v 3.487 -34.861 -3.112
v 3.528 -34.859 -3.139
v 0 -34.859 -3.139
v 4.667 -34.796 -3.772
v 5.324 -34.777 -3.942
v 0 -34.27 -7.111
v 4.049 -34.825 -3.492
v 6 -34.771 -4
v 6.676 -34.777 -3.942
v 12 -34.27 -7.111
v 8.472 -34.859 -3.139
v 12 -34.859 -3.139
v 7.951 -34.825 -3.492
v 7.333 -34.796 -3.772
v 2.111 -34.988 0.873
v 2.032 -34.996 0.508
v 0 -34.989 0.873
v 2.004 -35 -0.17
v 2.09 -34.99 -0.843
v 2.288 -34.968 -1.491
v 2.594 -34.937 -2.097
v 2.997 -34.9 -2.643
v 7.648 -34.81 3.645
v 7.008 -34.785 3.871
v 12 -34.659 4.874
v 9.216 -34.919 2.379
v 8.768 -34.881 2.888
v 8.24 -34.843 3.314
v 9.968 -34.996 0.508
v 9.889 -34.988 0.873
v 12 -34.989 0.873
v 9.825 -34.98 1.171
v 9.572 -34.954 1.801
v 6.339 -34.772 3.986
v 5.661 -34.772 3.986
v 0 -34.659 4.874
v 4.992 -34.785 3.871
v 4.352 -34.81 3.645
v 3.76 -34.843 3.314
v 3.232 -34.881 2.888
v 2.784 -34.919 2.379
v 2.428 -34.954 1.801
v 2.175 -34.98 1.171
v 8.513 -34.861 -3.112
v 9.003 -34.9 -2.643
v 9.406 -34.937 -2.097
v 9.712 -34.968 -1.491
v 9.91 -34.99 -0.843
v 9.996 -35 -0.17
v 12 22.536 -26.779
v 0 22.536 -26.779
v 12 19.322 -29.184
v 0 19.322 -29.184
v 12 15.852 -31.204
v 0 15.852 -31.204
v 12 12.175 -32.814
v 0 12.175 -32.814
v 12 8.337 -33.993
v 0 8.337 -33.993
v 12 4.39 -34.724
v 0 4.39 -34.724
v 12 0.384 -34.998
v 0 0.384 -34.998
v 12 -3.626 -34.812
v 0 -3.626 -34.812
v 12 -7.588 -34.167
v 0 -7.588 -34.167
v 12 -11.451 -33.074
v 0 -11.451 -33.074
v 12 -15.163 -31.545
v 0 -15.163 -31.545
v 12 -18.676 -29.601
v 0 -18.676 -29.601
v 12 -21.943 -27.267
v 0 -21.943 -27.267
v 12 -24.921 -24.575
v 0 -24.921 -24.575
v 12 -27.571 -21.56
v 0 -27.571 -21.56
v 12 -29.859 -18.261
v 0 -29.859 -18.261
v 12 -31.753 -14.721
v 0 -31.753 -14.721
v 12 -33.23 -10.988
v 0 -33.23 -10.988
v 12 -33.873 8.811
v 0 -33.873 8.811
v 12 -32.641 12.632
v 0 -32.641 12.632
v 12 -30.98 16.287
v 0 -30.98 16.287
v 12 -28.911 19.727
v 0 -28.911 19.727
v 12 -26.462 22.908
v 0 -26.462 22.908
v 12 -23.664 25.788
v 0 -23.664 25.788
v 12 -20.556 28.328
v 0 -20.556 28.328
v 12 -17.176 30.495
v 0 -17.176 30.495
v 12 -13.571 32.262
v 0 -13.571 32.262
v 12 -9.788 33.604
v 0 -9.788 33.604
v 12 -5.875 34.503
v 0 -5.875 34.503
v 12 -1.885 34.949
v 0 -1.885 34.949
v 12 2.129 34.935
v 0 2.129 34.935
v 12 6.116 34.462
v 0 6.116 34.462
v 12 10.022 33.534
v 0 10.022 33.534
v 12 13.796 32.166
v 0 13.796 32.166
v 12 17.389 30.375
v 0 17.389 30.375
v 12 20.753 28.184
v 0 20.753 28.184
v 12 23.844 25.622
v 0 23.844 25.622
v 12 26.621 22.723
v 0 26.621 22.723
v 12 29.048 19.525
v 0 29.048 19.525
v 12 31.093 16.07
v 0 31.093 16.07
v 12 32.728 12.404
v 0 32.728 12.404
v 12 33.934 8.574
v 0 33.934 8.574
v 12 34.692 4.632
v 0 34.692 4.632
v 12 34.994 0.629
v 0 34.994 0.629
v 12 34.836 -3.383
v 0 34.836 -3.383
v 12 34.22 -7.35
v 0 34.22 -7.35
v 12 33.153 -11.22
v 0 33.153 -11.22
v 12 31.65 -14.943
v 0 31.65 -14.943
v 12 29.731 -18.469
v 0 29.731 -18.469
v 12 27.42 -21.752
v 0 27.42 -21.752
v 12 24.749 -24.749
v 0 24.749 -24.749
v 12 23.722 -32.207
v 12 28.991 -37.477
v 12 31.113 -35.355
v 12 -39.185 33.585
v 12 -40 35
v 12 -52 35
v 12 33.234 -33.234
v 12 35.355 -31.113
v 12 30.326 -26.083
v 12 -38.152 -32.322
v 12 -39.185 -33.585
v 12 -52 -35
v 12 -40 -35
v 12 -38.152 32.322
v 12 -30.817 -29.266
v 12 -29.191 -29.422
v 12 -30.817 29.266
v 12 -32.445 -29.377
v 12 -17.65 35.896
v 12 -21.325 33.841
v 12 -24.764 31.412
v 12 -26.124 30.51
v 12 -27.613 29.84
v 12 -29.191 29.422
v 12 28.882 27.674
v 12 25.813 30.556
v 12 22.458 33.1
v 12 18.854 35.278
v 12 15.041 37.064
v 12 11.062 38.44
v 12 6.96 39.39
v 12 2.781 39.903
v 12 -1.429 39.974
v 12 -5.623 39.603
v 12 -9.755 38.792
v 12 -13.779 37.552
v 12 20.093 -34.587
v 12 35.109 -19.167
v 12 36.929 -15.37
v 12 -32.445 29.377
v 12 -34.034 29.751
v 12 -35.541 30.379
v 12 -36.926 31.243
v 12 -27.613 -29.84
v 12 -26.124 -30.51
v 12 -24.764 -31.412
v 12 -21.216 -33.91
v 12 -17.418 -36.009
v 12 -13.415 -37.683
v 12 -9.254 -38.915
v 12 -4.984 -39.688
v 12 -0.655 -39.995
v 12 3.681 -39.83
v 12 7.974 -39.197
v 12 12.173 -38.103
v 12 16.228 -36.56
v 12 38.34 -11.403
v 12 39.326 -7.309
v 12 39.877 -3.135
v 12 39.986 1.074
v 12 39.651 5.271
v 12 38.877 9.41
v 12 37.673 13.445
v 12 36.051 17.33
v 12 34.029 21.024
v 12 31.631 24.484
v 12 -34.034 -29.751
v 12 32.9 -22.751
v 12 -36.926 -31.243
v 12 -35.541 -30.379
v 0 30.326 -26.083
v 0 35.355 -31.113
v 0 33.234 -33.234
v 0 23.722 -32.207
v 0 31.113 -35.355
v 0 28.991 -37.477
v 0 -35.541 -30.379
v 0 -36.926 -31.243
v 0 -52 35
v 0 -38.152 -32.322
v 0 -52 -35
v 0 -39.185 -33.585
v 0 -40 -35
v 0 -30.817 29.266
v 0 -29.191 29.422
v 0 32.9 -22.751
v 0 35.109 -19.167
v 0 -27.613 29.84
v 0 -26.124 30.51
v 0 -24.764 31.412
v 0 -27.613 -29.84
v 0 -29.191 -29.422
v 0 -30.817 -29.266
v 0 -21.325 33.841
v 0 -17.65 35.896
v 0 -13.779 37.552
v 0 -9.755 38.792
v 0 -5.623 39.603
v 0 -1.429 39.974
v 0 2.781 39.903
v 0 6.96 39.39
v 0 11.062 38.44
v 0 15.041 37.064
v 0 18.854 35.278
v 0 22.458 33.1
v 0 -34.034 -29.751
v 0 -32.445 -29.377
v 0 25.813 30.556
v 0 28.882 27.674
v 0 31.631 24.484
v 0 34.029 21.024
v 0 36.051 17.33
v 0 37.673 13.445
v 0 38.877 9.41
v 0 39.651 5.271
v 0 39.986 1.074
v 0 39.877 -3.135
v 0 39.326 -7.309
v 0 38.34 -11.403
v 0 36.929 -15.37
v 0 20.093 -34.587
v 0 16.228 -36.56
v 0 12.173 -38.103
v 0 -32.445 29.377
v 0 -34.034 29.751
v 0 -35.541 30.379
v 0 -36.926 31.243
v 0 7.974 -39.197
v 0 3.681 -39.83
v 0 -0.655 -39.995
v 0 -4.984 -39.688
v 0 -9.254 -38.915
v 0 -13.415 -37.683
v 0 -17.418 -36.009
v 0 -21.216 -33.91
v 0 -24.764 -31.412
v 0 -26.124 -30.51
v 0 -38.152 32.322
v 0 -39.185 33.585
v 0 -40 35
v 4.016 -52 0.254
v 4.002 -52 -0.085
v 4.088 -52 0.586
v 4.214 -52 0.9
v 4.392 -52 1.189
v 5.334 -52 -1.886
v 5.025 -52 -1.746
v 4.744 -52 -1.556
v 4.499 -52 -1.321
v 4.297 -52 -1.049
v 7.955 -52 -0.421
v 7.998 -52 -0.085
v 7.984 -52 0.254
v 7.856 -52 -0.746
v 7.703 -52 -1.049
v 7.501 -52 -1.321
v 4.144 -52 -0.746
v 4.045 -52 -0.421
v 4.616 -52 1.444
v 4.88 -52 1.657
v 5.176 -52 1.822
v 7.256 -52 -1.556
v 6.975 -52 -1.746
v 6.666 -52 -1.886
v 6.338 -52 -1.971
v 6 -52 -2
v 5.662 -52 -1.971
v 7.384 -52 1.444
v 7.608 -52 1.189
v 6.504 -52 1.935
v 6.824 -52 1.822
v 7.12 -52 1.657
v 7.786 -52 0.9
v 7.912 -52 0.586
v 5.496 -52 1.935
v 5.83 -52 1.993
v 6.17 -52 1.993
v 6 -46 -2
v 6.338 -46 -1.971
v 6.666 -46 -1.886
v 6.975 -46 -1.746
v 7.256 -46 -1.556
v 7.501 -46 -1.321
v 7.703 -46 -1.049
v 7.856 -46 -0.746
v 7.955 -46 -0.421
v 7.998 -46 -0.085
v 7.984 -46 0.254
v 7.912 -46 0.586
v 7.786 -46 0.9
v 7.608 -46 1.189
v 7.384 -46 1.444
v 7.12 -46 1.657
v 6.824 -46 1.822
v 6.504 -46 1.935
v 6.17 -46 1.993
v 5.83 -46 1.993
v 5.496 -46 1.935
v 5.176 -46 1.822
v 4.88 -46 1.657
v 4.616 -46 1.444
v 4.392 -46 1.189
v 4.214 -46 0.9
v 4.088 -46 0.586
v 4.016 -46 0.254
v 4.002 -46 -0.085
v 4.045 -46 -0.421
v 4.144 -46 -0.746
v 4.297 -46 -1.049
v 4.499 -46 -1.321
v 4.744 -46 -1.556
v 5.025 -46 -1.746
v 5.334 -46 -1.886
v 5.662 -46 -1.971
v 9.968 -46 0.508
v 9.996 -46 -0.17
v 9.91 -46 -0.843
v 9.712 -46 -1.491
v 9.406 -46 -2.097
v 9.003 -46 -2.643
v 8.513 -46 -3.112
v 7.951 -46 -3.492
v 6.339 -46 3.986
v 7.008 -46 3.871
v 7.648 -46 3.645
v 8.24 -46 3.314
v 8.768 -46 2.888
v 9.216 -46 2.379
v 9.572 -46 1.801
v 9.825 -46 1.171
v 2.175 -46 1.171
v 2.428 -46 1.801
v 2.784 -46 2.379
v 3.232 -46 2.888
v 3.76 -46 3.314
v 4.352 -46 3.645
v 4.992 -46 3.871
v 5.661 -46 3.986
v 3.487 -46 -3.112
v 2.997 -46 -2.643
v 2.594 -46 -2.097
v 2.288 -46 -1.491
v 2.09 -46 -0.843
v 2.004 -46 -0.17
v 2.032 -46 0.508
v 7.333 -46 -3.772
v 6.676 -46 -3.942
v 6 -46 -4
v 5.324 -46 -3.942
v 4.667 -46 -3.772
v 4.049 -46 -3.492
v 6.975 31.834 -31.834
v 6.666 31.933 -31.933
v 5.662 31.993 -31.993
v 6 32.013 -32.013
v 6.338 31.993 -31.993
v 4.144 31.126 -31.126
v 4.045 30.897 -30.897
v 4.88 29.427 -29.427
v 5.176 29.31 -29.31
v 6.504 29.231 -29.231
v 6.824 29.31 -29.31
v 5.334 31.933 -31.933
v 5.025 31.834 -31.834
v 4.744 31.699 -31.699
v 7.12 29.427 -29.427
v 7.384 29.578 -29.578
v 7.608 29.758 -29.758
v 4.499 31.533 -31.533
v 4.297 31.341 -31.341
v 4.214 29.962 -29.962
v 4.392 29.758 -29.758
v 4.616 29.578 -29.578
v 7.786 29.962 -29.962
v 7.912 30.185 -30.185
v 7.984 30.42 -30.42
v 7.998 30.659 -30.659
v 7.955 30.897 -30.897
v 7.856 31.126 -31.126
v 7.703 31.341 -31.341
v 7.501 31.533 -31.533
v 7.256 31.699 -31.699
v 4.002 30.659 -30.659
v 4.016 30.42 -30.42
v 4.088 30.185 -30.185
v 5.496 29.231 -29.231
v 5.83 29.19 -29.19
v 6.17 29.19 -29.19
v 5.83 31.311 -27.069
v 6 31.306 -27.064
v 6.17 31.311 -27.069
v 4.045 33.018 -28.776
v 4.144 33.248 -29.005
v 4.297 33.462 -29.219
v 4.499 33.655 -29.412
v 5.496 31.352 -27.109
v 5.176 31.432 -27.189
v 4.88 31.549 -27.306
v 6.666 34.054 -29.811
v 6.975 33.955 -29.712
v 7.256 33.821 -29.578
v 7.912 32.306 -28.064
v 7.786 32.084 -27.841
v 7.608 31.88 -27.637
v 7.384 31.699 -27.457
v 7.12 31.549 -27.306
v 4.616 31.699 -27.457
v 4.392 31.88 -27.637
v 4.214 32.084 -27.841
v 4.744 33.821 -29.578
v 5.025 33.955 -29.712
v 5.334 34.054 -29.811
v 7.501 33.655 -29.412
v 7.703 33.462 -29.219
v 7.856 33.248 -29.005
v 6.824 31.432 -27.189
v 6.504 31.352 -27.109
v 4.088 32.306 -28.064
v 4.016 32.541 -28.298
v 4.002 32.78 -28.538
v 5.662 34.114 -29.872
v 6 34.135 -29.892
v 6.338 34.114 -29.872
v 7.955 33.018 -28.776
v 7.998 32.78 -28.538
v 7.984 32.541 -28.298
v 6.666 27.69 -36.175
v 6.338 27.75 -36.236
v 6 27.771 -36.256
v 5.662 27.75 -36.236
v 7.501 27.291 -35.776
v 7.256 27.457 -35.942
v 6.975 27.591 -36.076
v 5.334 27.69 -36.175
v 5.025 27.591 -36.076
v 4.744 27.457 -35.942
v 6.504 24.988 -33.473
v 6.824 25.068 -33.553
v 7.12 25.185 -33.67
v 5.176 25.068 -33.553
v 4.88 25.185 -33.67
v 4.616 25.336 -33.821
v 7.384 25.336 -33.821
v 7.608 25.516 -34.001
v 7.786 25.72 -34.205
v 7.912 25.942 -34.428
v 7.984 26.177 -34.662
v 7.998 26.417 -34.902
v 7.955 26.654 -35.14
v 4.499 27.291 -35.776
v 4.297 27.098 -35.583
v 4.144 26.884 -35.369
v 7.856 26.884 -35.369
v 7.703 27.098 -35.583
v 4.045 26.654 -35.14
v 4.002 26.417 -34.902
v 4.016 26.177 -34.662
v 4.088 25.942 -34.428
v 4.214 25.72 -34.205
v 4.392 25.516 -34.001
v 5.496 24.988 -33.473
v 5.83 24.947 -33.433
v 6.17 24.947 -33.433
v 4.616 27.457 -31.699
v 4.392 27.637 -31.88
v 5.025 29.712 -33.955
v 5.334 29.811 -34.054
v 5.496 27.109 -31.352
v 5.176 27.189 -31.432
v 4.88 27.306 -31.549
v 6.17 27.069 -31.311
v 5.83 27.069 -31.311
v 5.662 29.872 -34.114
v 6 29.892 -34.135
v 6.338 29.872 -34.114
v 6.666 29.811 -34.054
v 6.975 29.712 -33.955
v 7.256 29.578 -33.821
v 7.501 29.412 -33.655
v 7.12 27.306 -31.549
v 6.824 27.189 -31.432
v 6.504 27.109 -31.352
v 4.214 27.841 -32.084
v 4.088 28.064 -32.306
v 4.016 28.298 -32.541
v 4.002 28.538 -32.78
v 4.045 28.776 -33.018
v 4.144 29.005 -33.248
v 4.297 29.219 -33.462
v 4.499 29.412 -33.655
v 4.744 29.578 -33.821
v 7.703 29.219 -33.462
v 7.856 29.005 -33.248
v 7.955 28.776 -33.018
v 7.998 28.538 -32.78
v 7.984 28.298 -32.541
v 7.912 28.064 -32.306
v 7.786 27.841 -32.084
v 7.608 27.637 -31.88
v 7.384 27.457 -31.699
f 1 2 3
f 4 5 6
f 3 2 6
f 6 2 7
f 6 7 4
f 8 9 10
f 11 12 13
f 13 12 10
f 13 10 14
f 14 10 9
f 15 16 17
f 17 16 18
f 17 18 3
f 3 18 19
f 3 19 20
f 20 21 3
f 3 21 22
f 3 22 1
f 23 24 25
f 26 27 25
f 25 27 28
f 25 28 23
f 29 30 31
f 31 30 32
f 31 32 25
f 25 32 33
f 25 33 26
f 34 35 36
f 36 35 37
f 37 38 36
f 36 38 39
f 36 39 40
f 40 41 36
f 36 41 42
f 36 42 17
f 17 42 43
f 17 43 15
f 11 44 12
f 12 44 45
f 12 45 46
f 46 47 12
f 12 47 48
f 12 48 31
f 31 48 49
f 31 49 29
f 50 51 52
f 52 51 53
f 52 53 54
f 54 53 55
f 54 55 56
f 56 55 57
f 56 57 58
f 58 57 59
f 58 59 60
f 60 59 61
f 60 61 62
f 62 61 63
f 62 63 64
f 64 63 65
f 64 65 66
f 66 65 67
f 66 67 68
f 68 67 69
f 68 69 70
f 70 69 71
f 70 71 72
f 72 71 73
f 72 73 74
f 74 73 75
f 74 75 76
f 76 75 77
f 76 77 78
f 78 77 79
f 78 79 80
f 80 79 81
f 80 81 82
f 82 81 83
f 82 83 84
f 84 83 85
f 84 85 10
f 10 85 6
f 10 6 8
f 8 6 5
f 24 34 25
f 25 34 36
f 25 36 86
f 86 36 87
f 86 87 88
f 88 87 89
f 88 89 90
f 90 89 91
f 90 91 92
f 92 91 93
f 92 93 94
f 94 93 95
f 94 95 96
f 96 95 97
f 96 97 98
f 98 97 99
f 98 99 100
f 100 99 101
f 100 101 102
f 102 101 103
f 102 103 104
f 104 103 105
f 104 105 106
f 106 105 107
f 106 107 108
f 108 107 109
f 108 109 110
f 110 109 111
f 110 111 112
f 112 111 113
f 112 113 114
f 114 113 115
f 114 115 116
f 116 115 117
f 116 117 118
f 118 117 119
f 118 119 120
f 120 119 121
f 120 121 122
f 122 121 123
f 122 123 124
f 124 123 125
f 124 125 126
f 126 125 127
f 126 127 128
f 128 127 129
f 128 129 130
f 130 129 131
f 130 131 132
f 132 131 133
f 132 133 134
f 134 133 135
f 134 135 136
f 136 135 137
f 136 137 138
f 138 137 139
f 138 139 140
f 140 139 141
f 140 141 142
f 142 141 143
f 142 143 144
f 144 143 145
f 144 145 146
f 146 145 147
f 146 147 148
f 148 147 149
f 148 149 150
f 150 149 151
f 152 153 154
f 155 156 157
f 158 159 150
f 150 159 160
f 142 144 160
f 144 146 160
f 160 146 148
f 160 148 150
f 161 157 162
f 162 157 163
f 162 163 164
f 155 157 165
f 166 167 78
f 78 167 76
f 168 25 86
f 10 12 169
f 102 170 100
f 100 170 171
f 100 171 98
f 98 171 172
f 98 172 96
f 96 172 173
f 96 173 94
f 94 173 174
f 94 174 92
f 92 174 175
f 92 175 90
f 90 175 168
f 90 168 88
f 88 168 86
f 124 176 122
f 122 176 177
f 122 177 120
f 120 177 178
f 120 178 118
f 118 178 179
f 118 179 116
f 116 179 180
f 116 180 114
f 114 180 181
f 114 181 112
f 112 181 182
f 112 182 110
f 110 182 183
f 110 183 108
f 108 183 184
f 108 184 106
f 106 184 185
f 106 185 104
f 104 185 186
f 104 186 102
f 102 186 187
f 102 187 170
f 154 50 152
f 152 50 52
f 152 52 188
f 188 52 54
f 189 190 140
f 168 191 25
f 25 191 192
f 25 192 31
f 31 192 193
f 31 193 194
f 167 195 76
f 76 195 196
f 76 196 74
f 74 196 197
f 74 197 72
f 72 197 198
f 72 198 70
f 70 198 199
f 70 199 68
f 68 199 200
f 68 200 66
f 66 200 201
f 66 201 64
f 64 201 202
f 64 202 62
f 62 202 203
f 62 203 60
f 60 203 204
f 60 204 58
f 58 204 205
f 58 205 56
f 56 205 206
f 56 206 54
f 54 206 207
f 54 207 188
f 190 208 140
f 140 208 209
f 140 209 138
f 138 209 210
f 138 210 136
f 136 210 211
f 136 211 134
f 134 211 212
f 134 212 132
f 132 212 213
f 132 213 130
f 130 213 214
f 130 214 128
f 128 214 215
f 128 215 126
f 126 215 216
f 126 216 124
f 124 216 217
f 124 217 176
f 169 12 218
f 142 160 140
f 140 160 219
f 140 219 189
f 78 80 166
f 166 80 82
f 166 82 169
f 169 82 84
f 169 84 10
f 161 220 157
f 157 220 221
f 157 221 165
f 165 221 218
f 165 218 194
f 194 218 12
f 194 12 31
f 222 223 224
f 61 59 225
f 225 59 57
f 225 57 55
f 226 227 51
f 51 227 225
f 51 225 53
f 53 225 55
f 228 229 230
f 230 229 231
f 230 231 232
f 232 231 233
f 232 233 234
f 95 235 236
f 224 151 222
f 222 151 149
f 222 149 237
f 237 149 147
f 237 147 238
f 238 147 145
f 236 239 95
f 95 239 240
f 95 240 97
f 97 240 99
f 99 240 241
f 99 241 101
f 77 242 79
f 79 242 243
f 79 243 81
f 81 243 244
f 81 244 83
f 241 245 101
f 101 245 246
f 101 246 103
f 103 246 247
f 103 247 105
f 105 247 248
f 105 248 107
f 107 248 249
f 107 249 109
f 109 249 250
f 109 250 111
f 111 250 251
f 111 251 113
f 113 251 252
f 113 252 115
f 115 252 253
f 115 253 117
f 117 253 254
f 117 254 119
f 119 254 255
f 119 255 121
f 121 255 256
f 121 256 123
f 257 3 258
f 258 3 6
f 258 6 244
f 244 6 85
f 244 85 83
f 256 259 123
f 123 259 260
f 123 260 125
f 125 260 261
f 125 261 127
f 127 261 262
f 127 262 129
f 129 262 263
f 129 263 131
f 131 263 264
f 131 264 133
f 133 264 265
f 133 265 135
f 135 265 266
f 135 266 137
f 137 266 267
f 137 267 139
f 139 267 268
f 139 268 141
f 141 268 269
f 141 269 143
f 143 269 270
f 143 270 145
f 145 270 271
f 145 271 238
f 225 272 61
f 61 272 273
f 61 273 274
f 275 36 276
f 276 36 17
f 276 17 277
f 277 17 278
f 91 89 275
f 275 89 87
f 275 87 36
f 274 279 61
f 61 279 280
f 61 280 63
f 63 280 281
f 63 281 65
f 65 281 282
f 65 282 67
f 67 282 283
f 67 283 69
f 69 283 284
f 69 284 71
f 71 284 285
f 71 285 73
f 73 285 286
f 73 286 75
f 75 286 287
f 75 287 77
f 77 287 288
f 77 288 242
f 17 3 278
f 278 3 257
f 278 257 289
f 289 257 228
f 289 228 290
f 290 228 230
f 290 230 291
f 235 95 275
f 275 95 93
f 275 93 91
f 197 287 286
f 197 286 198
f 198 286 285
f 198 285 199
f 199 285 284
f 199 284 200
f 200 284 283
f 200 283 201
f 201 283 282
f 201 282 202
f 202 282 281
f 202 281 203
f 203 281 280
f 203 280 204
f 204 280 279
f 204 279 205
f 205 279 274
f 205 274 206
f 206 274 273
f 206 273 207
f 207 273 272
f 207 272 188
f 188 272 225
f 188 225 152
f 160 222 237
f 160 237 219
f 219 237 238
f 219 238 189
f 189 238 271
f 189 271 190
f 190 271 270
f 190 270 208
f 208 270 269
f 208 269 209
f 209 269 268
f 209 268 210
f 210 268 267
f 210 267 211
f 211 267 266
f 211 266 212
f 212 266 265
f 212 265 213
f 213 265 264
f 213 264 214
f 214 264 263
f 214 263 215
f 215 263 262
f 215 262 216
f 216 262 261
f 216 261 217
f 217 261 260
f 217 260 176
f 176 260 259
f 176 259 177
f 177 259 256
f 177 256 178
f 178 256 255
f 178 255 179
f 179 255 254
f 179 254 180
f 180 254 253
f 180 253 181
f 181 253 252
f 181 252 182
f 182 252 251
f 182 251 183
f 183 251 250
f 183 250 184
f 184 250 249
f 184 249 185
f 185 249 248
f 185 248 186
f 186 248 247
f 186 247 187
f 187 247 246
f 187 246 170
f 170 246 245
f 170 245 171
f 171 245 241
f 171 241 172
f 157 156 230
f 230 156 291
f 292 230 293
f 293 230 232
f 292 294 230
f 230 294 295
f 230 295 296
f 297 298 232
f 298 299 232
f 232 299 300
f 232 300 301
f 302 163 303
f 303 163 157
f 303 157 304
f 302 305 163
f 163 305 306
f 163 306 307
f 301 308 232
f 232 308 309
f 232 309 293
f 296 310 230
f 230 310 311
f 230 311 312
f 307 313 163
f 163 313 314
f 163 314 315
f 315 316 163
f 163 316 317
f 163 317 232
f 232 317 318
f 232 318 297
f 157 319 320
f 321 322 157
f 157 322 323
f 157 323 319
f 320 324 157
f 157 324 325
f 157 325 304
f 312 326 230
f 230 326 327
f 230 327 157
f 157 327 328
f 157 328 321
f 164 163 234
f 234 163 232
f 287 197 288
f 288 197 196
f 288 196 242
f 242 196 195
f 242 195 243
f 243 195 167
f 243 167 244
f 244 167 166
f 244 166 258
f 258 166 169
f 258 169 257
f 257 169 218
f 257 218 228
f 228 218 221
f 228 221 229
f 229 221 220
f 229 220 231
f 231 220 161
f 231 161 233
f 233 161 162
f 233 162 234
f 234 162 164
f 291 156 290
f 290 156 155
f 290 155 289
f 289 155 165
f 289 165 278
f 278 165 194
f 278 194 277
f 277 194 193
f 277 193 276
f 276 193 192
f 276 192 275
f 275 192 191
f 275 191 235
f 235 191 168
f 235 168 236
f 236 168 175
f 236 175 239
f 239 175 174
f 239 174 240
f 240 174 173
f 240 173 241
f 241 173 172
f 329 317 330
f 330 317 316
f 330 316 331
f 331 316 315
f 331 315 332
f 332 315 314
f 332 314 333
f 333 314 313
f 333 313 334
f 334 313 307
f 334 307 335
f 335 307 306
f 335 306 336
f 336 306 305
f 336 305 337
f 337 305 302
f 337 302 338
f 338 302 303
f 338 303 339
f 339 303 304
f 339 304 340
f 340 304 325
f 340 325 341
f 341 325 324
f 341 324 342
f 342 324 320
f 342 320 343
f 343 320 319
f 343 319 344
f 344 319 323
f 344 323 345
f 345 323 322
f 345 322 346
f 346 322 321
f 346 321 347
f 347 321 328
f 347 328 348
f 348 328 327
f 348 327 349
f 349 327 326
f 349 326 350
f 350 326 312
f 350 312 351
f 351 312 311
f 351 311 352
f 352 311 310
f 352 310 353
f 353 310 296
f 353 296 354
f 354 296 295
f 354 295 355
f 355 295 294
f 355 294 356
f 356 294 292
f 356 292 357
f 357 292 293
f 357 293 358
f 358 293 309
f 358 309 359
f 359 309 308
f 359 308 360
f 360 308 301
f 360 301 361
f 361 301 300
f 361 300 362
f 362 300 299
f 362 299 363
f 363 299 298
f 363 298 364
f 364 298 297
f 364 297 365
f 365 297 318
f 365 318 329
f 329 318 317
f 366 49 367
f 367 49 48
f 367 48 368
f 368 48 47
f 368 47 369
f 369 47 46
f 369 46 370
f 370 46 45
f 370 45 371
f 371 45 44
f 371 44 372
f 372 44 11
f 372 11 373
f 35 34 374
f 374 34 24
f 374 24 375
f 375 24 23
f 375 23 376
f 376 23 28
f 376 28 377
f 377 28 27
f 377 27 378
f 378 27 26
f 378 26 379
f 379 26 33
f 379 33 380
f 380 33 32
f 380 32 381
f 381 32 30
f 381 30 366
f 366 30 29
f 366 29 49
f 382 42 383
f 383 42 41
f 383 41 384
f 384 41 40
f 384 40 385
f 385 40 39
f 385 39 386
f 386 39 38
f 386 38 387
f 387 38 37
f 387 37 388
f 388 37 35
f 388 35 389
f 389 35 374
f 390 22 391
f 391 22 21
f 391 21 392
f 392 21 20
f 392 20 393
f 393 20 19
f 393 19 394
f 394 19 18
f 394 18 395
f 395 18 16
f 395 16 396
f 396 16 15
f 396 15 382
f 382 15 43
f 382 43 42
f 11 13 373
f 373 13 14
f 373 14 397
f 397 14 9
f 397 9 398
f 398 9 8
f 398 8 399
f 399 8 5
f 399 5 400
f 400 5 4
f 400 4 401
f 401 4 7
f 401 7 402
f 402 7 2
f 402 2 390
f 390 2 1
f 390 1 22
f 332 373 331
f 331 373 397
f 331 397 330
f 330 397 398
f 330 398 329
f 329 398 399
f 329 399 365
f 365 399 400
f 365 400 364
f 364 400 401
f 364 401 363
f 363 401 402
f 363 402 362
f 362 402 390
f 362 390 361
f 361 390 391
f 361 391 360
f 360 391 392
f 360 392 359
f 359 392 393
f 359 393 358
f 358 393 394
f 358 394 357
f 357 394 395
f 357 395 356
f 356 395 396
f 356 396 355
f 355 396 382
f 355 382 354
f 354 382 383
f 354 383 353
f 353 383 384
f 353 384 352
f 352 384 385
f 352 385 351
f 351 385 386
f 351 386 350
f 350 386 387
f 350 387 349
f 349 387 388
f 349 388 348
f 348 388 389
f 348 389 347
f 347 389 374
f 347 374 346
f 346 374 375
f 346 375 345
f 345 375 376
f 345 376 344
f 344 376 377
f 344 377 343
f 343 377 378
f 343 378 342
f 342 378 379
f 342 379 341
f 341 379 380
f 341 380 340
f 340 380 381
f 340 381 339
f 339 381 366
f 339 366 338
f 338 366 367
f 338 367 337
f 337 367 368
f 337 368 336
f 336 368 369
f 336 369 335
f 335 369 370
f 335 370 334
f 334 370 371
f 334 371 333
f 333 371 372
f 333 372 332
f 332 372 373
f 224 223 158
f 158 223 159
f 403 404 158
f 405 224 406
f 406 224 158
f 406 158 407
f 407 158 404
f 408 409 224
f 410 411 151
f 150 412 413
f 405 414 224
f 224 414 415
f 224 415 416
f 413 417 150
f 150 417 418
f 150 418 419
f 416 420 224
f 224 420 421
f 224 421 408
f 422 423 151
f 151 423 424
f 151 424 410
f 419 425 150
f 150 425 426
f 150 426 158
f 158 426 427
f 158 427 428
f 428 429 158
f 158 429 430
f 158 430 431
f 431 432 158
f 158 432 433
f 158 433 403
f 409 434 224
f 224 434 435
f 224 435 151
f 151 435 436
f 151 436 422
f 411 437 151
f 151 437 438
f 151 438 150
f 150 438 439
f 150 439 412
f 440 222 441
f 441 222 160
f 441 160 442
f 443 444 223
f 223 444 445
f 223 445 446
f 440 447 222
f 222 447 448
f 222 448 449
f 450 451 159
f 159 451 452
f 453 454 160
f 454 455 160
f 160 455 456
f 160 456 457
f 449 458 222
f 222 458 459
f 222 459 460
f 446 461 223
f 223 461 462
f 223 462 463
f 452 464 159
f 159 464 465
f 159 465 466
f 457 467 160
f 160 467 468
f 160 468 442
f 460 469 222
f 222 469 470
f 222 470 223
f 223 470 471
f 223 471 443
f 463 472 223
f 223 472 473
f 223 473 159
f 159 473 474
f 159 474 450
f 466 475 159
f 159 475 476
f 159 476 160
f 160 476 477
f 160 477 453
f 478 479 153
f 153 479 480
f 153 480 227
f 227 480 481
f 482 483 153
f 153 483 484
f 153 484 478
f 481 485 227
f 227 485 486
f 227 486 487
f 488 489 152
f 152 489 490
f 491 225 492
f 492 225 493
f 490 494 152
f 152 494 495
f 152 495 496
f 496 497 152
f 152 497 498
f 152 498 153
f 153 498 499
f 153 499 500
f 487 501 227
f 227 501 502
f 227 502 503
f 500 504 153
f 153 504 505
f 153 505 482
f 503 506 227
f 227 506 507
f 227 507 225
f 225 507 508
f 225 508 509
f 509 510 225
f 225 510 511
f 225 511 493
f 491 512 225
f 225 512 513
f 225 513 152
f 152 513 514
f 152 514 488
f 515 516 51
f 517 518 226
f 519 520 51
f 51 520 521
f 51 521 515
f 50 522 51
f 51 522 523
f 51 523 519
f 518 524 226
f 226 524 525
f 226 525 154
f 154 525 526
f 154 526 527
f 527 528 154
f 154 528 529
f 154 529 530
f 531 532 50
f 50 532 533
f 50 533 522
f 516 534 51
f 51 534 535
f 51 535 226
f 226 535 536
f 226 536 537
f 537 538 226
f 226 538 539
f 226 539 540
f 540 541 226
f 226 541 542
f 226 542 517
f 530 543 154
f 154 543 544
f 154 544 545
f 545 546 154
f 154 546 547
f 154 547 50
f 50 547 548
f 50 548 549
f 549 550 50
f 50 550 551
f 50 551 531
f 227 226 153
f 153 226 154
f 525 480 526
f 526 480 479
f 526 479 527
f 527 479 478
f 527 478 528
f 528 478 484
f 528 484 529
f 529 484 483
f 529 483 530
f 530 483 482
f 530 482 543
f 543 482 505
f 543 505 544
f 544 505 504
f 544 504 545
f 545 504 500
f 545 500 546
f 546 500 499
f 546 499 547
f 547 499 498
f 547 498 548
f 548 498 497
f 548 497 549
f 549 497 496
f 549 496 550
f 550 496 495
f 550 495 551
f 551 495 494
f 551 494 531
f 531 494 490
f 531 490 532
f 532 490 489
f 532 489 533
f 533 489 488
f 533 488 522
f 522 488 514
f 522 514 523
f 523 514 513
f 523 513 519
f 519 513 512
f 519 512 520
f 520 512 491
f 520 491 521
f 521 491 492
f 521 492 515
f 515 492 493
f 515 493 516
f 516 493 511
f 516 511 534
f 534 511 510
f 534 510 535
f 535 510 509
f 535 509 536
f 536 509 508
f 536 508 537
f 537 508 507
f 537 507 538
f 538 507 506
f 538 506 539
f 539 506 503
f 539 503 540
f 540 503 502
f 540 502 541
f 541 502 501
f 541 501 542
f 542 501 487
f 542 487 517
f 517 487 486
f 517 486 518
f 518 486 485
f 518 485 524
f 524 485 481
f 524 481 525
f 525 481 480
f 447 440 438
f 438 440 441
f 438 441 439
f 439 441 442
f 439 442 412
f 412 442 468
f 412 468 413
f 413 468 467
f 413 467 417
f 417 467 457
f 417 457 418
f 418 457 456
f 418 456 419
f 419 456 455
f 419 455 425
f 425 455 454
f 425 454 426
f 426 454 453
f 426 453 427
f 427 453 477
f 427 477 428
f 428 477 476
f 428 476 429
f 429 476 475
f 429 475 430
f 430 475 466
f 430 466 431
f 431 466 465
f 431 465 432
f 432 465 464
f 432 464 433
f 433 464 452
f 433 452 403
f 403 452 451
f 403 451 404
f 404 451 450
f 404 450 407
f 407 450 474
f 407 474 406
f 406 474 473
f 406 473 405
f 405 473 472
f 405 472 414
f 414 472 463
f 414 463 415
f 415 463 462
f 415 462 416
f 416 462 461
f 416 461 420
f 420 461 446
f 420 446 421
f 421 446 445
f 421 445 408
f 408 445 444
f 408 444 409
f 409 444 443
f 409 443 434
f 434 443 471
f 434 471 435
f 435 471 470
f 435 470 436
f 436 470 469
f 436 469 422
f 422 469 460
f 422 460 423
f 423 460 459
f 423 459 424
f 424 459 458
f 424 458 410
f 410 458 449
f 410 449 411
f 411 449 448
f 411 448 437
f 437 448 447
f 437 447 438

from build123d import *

# Parameters (mm, degrees)
SKETCH_1_W          = 70
SKETCH_1_H          = 12
SKETCH_1_R          = 40
SKETCH_1_R_2        = 35
SKETCH_1_W_2        = 35
EXTRUDE_1_DEPTH     = 12
FILLET_1_R          = 10
SKETCH_2_R          = 2
CUT_EXTRUDE_1_DEPTH = 27
CUT_EXTRUDE_START   = -6
SKETCH_2_3_R        = 4
SKETCH_2_3_R_2      = 2
CUT_EXTRUDE_2_DEPTH = 18
EXTRUDE_START       = -12
EXTRUDE_2_DEPTH     = 12
CUT_EXTRUDE_START_2 = -12
CUT_EXTRUDE_3_DEPTH = 12
SKETCH_4_R          = 2
CUT_EXTRUDE_4_DEPTH = 67.19801074


with BuildPart() as part:
    # 스케치1 → 보스-돌출1 (new body)
    # profile 1 of 7: a face of its own
    with BuildSketch(Plane(origin=(0, 0, 0), x_dir=(0, 0, -1), z_dir=(1, 0, 0))):
        with Locations((0, -46)):
            Rectangle(SKETCH_1_W, SKETCH_1_H)
    # profile 2 of 7: a face of its own
    with BuildSketch(Plane(origin=(0, 0, 0), x_dir=(0, 0, -1), z_dir=(1, 0, 0))):
        Circle(SKETCH_1_R)
        Circle(SKETCH_1_R_2, mode=Mode.SUBTRACT)
    # profile 3 of 7: a face of its own
    with BuildSketch(Plane(origin=(0, 0, 0), x_dir=(0, 0, -1), z_dir=(1, 0, 0))):
        with BuildLine():
            ThreePointArc((-18.119935206, -35.660453561), (-26.285525679, -38.897757113), (-35, -40))
            Line((-35, -40), (0, -40))
            ThreePointArc((0, -40), (-9.316164919, -38.899988062), (-18.119935206, -35.660453561))
        make_face()
    # profile 4 of 7: a face of its own
    with BuildSketch(Plane(origin=(0, 0, 0), x_dir=(0, 0, -1), z_dir=(1, 0, 0))):
        with Locations((17.5, -46)):
            Rectangle(SKETCH_1_W_2, SKETCH_1_H)
    # profile 5 of 7: a face of its own
    with BuildSketch(Plane(origin=(0, 0, 0), x_dir=(0, 0, -1), z_dir=(1, 0, 0))):
        with BuildLine():
            ThreePointArc((18.119935206, -35.660453561), (9.316164919, -38.899988062), (0, -40))
            Line((0, -40), (35, -40))
            ThreePointArc((35, -40), (26.285525679, -38.897757113), (18.119935206, -35.660453561))
        make_face()
    # profile 6 of 7: a face of its own
    with BuildSketch(Plane(origin=(0, 0, 0), x_dir=(0, 0, -1), z_dir=(1, 0, 0))):
        with BuildLine():
            ThreePointArc((-18.119935206, -35.660453561), (-9.316164919, -38.899988062), (0, -40))
            Line((0, -40), (0, -35))
            ThreePointArc((0, -35), (-35, 0), (0, 35))
            Line((0, 35), (0, 40))
            ThreePointArc((0, 40), (-38.899988062, 9.316164919), (-18.119935206, -35.660453561))
        make_face()
    # profile 7 of 7: a face of its own
    with BuildSketch(Plane(origin=(0, 0, 0), x_dir=(0, 0, -1), z_dir=(1, 0, 0))):
        with BuildLine():
            Line((0, -35), (0, -40))
            ThreePointArc((0, -40), (9.316164919, -38.899988062), (18.119935206, -35.660453561))
            ThreePointArc((18.119935206, -35.660453561), (34.093968735, -20.918921958), (40, 0))
            ThreePointArc((40, 0), (28.284271247, 28.284271247), (0, 40))
            Line((0, 40), (0, 35))
            ThreePointArc((0, 35), (24.748737342, 24.748737342), (35, 0))
            ThreePointArc((35, 0), (24.748737342, -24.748737342), (0, -35))
        make_face()
    extrude(amount=EXTRUDE_1_DEPTH)

    # 필렛1
    # the kernel refuses this fillet: 10 mm, written as the material it adds along each edge
    with BuildSketch(Plane(origin=(0, -35.660453561, -18.119935206), x_dir=(0, -0.24898498059862248, -0.9685073460931021), z_dir=(1, 0, 0))) as fillet_1_piece_1:
        with BuildLine():
            CenterArc((19.307998012, 9.821872198), FILLET_1_R, 156.16657794, 103.002878163)
            Line((10.16075687, 13.862661663), (9.977812048, 13.943477452))
            ThreePointArc((9.977812048, 13.943477452), (5.672446884, 6.497369179), (-0.132141038, 0.150129098))
            Line((-0.132141038, 0.150129098), (-0.049796996, -0.193701469))
            ThreePointArc((-0.049796996, -0.193701469), (8.714474321, -1.302242887), (17.391367655, -0.196437444))
            Line((17.391367655, -0.196437444), (17.428948642, 0))
        make_face()
    extrude(amount=12)
    with BuildSketch(Plane(origin=(0, -35.660453561, 18.119935206), x_dir=(0, 0.6339570106071373, 0.7733682878823399), z_dir=(1, 0, 0))) as fillet_1_piece_2:
        with BuildLine():
            CenterArc((19.336075357, 9.766480968), FILLET_1_R, 154.590671351, 103.002878163)
            Line((10.303420921, 14.057303016), (10.122767833, 14.143119457))
            ThreePointArc((10.122767833, 14.143119457), (4.101387619, 7.798494651), (-0.185668093, 0.074346212))
            Line((-0.185668093, 0.074346212), (0.042969056, -0.195329619))
            ThreePointArc((0.042969056, -0.195329619), (8.59381127, 0.734076129), (17.144653483, -0.195329619))
            Line((17.144653483, -0.195329619), (17.187622539, 0))
        make_face()
    extrude(amount=12)

    # 스케치2 → 컷-돌출1 (cut)
    with BuildSketch(Plane.XZ.offset(52)):
        with Locations(Location((6, 0, 0), (0, 0, 270))):
            Circle(SKETCH_2_R)
    extrude(amount=-CUT_EXTRUDE_1_DEPTH, mode=Mode.SUBTRACT)

    # 스케치2<3> → 컷-돌출2 (cut)
    with BuildSketch(Plane.XZ.offset(52).offset(CUT_EXTRUDE_START)):
        with Locations(Location((6, 0, 0), (0, 0, 270))):
            Circle(SKETCH_2_3_R)
        with Locations(Location((6, 0, 0), (0, 0, 270))):
            Circle(SKETCH_2_3_R_2, mode=Mode.SUBTRACT)
    extrude(amount=-CUT_EXTRUDE_2_DEPTH, mode=Mode.SUBTRACT)

    # 스케치3 → 보스-돌출2 (add)
    with BuildSketch(Plane(origin=(12, 0, 0), x_dir=(0, 0, -1), z_dir=(1, 0, 0)).offset(EXTRUDE_START)):
        with BuildLine():
            ThreePointArc((26.083289209, 30.325929896), (27.202941017, 29.325756597), (28.284271247, 28.284271247))
            Line((28.284271247, 28.284271247), (33.234018716, 33.234018716))
            Line((33.234018716, 33.234018716), (31.112698372, 35.355339059))
            Line((31.112698372, 35.355339059), (26.083289209, 30.325929896))
        make_face()
        with BuildLine():
            Line((35.355339059, 31.112698372), (30.325929896, 26.083289209))
            ThreePointArc((30.325929896, 26.083289209), (31.28870697, 24.920208991), (32.206903595, 23.721622221))
            Line((32.206903595, 23.721622221), (37.476659403, 28.991378029))
            Line((37.476659403, 28.991378029), (35.355339059, 31.112698372))
        make_face()
    extrude(amount=EXTRUDE_2_DEPTH)

    # 스케치3<3> → 컷-돌출3 (cut)
    with BuildSketch(Plane(origin=(12, 0, 0), x_dir=(0, 0, -1), z_dir=(1, 0, 0)).offset(CUT_EXTRUDE_START_2)):
        with BuildLine():
            Line((28.284271247, 28.284271247), (24.748737342, 24.748737342))
            ThreePointArc((24.748737342, 24.748737342), (25.787593916, 23.664319132), (26.778976355, 22.536335668))
            Line((26.778976355, 22.536335668), (30.325929896, 26.083289209))
            ThreePointArc((30.325929896, 26.083289209), (29.325756597, 27.202941017), (28.284271247, 28.284271247))
        make_face()
    extrude(amount=CUT_EXTRUDE_3_DEPTH, mode=Mode.SUBTRACT)

    # 스케치4 → 컷-돌출4 (cut, through all)
    with BuildSketch(Plane(origin=(0, -4.242640687, -4.242640687), x_dir=(1, 0, 0), z_dir=(0, -0.7071067811865483, -0.7071067811865468))):
        with Locations(Location((6, -43.273719933, 0), (0, 0, 270))):
            Circle(SKETCH_4_R)
    extrude(amount=-CUT_EXTRUDE_4_DEPTH, mode=Mode.SUBTRACT)


solid = part.part
